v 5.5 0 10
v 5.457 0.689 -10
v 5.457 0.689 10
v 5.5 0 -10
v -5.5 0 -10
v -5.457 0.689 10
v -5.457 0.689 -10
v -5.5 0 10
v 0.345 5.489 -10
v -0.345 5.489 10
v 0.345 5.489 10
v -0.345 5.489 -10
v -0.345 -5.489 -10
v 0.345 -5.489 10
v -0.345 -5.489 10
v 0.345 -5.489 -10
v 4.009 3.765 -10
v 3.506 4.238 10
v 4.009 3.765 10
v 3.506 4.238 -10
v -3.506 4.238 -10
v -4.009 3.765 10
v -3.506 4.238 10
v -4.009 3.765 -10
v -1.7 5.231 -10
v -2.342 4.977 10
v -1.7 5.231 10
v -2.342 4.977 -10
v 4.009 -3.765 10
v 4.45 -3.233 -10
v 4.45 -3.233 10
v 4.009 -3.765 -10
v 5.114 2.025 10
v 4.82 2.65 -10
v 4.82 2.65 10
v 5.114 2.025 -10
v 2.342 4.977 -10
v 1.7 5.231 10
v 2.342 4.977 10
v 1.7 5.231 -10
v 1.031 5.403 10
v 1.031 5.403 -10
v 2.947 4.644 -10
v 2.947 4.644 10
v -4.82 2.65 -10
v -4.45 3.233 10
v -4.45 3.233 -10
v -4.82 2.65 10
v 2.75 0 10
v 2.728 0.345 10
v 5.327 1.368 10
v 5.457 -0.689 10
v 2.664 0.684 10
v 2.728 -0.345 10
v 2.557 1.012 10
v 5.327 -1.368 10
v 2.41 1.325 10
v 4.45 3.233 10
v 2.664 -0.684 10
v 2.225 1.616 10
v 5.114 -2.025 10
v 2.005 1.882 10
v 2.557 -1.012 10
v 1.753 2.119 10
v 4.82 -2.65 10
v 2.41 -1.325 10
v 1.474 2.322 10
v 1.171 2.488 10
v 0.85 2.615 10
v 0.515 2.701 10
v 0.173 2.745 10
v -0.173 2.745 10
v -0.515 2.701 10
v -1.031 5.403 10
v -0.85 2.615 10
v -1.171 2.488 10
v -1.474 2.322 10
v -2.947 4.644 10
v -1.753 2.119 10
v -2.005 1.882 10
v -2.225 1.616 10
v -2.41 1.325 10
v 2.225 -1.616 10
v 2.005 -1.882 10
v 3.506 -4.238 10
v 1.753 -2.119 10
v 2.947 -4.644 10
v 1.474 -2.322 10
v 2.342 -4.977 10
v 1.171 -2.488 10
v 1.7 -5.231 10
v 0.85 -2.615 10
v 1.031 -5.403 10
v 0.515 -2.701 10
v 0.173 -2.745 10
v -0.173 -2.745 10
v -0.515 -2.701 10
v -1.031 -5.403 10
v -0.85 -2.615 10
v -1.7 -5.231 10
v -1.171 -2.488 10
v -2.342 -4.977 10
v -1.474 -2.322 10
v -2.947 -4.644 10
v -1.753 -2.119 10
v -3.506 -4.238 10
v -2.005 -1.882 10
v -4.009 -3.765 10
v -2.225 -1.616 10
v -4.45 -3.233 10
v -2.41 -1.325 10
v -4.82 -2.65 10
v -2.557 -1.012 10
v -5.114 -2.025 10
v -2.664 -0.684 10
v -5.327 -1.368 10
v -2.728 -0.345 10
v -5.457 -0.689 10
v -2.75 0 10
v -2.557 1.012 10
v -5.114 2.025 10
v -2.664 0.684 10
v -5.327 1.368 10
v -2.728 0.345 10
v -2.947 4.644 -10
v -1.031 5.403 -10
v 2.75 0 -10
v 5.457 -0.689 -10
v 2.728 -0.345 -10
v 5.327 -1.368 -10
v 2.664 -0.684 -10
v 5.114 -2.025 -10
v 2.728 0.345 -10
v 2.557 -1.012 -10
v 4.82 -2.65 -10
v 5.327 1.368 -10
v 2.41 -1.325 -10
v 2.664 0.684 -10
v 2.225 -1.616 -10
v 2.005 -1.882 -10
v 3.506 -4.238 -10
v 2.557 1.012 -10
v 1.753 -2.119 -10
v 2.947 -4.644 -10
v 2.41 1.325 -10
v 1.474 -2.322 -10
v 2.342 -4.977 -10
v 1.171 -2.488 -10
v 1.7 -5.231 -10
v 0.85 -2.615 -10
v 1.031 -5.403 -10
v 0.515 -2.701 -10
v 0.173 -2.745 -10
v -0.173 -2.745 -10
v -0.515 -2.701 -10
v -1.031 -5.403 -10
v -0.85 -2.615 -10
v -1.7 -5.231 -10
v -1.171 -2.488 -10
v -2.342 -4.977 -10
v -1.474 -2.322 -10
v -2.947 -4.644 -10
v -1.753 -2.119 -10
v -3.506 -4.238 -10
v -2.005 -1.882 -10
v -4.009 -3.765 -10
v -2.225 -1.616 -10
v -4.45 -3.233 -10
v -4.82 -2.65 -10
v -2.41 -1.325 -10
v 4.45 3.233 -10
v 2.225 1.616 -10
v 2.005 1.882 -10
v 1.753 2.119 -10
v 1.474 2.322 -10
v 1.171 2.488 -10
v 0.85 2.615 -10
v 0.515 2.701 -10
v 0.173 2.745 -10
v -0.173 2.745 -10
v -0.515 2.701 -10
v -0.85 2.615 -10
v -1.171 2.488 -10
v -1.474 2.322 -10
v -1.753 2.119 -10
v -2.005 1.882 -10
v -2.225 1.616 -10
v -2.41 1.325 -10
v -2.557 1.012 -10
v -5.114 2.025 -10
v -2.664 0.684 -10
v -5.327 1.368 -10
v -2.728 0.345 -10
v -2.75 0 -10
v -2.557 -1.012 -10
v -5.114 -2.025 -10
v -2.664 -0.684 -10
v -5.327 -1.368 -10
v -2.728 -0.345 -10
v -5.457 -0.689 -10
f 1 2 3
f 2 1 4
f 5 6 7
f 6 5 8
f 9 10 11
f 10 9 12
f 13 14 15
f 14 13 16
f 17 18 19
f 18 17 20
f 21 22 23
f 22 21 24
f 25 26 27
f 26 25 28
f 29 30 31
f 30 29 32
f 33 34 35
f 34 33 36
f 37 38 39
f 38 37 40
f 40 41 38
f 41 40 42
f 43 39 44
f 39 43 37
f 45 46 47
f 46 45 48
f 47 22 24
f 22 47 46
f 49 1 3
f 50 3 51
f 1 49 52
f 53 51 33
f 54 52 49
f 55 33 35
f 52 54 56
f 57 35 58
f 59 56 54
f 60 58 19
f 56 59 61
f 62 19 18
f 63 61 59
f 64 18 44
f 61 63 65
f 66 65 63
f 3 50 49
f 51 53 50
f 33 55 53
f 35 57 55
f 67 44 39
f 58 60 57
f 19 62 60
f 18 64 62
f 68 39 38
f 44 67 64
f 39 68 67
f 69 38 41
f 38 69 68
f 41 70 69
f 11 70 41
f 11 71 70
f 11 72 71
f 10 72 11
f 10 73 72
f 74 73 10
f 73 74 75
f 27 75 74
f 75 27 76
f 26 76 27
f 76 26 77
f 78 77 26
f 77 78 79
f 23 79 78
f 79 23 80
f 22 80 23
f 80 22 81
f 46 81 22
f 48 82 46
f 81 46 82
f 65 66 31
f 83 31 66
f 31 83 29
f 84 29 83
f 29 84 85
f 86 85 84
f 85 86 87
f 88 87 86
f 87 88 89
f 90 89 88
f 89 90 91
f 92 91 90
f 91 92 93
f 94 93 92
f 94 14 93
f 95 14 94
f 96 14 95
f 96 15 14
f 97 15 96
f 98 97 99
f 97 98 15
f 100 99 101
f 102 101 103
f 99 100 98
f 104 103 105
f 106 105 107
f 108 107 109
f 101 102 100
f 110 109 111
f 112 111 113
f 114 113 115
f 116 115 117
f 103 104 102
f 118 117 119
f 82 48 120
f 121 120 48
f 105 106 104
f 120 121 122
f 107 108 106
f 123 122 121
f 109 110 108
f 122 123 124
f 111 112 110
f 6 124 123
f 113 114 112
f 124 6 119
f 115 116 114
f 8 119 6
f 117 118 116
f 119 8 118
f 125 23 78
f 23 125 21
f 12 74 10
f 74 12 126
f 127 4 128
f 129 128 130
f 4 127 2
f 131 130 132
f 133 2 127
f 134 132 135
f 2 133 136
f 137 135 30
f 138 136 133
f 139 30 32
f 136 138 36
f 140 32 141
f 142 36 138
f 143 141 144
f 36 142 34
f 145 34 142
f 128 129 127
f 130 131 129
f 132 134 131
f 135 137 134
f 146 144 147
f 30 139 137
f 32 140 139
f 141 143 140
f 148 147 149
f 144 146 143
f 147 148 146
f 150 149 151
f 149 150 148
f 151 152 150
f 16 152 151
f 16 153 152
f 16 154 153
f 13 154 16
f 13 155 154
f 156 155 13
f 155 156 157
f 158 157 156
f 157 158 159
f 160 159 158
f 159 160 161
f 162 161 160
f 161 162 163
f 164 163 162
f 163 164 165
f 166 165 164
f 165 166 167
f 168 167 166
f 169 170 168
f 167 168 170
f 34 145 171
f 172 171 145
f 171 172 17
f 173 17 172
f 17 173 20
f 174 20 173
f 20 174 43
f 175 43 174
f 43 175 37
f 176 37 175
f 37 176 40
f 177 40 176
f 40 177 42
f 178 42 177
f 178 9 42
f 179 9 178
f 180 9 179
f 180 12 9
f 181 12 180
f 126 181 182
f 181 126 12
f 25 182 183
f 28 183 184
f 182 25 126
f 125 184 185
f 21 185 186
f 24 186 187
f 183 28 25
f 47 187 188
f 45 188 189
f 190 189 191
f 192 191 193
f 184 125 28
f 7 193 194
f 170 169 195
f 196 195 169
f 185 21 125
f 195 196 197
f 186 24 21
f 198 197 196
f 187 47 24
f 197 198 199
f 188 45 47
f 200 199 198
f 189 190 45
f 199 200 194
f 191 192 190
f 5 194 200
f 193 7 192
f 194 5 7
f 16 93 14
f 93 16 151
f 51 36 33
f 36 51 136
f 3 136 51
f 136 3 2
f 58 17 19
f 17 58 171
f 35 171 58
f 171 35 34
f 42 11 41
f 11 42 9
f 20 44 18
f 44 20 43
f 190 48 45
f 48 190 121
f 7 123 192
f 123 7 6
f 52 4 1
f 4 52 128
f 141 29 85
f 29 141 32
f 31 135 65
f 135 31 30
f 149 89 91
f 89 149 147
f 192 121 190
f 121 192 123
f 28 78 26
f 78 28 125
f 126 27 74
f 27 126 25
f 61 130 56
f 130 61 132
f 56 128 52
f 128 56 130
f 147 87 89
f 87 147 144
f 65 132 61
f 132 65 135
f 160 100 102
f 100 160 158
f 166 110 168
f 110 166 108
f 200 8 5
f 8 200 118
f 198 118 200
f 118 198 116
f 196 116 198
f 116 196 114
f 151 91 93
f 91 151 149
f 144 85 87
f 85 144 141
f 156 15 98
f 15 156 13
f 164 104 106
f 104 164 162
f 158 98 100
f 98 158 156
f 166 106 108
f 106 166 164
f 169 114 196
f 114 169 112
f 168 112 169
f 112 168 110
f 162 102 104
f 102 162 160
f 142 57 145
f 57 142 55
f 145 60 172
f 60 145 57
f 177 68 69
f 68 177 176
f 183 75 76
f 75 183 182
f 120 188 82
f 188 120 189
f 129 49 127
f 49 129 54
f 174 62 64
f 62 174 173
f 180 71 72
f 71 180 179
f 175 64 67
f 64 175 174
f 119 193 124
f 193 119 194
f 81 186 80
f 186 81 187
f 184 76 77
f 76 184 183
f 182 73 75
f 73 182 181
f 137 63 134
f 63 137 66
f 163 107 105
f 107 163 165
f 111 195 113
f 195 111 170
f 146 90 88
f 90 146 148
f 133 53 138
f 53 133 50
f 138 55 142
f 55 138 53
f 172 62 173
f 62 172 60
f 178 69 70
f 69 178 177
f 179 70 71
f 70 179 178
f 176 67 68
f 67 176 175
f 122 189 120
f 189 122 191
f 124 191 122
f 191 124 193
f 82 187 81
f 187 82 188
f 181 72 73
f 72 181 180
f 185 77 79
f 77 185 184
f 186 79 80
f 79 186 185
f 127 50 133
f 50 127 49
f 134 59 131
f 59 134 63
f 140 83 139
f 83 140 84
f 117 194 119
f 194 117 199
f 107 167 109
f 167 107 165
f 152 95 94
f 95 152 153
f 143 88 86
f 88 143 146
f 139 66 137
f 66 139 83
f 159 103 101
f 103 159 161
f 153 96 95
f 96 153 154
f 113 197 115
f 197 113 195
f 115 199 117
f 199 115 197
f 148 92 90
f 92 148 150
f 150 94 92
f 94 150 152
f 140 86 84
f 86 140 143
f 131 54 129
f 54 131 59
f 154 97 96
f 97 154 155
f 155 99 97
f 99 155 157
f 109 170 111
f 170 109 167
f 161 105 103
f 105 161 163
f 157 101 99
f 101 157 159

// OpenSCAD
$fn = 50;


difference() {
	union() {
		translate(v = [0, 0, -10.0000000000]) {
			cylinder(h = 20, r = 5.5000000000);
		}
	}
	union() {
		translate(v = [0, 0, -100.0000000000]) {
			cylinder(h = 200, r = 2.7500000000);
		}
	}
}
